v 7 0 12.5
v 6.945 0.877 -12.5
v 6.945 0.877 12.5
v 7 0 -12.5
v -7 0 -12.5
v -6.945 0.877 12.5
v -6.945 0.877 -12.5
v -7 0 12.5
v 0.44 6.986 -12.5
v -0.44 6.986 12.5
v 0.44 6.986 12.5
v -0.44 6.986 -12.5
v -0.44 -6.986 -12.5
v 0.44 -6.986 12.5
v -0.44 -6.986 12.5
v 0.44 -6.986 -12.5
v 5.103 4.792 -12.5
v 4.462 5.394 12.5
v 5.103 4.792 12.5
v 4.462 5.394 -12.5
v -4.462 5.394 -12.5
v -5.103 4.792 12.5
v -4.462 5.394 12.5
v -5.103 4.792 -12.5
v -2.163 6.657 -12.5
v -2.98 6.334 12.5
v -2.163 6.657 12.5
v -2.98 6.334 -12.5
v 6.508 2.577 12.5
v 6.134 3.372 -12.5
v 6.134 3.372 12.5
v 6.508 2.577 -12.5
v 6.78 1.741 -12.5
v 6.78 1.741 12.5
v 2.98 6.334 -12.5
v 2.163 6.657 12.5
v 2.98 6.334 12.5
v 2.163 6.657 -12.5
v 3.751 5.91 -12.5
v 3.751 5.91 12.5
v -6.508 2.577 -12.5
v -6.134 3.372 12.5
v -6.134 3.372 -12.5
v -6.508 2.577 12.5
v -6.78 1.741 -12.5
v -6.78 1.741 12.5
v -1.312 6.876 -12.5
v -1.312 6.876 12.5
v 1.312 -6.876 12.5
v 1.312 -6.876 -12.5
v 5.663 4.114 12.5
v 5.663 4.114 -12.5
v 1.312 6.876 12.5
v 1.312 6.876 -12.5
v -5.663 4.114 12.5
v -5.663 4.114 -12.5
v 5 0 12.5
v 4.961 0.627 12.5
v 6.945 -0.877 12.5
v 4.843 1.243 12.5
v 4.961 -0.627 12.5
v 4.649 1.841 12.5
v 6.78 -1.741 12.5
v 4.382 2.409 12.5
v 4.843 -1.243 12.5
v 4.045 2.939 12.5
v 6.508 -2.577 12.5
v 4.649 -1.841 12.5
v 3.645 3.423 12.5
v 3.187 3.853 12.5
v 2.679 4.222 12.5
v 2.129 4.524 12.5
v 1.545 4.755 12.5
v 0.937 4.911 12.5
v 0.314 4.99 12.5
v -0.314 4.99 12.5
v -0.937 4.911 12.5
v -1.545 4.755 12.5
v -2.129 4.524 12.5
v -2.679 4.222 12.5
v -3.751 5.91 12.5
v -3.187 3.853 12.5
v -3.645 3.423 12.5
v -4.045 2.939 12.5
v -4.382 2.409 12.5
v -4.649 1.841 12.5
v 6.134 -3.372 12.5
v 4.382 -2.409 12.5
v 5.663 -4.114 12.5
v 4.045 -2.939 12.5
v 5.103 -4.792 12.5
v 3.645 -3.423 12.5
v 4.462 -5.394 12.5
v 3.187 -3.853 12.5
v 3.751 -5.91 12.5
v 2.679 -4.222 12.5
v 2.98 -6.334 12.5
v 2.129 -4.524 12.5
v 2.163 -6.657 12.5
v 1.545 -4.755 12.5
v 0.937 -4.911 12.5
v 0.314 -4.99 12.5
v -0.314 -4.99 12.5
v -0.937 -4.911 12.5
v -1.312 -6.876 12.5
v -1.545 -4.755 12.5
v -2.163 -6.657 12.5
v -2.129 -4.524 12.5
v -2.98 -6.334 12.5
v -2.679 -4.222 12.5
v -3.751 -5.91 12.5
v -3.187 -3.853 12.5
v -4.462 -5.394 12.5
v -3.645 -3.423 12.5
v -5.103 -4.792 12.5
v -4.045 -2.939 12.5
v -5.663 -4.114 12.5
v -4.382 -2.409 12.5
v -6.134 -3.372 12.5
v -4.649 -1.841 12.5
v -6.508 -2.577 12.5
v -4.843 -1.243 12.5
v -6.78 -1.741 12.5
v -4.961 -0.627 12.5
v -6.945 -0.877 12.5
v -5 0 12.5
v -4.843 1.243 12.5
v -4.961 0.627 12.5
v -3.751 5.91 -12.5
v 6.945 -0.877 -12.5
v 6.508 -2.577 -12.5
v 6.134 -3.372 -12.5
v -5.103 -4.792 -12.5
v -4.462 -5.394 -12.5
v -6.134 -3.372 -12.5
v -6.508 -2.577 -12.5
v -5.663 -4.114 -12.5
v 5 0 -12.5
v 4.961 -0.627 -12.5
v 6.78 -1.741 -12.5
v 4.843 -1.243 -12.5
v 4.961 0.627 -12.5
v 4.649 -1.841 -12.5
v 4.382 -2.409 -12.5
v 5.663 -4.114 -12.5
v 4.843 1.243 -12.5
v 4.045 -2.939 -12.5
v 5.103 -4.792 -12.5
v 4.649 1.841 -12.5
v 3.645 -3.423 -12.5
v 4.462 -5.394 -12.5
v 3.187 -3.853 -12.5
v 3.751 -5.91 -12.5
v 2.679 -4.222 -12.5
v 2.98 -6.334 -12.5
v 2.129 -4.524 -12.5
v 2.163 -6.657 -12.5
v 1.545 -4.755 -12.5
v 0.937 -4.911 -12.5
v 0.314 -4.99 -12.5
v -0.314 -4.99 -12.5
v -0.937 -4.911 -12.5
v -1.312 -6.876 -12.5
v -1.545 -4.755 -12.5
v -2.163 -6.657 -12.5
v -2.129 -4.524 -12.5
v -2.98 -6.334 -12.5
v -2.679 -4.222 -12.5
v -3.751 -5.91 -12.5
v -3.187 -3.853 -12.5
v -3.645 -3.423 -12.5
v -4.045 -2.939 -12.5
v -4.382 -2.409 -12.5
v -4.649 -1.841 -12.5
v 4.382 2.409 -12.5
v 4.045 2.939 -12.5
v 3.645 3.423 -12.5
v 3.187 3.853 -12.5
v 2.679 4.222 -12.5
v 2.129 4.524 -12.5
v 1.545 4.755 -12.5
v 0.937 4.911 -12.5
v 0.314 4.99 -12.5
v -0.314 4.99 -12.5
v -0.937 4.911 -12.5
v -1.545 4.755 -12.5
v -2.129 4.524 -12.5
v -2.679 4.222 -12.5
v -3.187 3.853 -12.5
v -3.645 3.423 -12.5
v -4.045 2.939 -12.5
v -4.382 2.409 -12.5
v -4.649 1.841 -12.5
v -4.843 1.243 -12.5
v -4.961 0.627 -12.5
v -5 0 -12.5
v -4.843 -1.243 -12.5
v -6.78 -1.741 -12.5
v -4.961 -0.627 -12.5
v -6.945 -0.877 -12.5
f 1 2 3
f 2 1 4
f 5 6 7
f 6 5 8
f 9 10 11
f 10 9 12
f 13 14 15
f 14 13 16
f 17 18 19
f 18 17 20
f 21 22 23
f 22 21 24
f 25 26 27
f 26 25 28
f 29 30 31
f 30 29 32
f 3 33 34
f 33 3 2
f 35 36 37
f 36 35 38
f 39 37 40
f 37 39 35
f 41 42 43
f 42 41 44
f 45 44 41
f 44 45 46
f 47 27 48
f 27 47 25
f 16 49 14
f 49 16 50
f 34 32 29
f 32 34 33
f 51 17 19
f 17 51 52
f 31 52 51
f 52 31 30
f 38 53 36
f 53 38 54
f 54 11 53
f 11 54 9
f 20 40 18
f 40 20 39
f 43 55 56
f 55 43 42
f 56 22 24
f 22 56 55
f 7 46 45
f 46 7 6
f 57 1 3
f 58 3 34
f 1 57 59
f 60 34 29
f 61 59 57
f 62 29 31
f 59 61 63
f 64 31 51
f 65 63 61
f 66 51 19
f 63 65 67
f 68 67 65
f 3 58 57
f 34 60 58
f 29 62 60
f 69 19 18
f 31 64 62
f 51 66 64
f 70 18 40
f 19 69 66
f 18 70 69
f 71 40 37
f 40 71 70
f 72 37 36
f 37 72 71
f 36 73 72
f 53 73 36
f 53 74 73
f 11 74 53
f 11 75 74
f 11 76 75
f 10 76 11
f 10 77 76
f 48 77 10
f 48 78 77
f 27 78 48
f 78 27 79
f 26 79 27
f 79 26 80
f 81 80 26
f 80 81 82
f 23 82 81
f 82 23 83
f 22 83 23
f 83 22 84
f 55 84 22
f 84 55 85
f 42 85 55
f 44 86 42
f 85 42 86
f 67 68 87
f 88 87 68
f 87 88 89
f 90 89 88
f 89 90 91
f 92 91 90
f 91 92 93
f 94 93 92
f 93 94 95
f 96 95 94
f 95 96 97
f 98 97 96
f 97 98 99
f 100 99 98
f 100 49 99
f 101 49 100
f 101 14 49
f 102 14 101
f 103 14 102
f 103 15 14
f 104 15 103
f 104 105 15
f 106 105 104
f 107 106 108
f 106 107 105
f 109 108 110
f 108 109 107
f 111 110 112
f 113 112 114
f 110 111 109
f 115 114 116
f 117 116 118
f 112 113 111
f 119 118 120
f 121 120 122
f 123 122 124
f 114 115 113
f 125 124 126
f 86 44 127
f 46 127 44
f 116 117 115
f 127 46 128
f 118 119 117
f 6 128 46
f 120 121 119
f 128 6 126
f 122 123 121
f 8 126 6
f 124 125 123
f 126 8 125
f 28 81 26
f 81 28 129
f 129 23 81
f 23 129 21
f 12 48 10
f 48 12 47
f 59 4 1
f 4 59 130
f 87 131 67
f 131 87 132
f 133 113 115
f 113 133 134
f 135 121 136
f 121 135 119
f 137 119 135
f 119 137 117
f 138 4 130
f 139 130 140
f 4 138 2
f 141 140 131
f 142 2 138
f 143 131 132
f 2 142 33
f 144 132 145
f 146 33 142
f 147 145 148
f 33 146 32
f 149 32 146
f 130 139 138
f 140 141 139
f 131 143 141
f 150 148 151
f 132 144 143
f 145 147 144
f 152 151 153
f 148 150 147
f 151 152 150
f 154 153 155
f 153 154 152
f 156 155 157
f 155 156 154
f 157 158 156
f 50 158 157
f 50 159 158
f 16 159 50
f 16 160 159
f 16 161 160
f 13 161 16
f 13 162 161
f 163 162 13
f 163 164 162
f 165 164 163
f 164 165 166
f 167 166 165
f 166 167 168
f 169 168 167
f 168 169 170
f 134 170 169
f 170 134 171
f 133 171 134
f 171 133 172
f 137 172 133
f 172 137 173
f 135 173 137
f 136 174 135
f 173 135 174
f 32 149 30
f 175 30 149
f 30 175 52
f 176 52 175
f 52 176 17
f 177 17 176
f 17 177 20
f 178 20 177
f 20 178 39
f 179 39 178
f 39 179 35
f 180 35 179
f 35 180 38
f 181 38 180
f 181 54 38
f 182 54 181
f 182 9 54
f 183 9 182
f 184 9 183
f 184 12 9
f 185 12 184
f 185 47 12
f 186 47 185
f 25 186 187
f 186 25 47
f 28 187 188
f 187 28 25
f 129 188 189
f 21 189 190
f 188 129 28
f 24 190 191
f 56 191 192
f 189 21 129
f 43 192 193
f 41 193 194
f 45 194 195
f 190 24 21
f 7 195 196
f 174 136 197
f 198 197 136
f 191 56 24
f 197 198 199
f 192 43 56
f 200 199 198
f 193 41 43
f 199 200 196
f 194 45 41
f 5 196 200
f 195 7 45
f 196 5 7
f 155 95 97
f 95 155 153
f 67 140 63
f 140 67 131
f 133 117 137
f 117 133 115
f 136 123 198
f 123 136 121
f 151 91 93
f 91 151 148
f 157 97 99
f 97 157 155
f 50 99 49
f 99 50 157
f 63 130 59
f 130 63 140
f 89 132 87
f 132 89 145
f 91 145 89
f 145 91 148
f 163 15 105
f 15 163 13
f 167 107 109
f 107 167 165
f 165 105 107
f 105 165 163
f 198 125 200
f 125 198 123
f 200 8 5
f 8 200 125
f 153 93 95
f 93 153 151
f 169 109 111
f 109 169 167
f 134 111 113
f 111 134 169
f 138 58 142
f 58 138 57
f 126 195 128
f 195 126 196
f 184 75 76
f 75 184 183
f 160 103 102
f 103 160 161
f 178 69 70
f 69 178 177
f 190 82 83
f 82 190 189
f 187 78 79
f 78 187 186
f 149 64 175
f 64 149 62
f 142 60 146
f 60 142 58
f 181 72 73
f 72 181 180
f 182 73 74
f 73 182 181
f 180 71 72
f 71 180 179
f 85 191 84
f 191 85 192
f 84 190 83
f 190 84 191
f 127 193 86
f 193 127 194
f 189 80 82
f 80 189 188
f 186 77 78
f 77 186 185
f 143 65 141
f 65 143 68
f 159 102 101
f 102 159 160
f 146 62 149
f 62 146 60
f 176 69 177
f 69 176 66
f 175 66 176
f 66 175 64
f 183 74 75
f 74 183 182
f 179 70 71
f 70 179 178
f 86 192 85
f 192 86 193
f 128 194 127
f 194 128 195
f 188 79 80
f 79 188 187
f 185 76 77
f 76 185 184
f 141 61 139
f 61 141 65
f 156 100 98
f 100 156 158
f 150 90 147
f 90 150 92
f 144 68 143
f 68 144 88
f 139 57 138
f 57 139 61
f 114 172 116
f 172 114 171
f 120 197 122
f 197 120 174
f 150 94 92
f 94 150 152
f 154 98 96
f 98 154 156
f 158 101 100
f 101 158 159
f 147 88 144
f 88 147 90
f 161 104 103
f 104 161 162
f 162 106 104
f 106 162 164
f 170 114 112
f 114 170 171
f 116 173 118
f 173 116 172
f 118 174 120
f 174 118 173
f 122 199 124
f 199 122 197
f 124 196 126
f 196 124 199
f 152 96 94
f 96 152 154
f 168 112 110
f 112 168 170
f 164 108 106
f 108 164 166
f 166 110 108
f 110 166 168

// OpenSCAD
$fn = 50;


difference() {
	union() {
		translate(v = [0, 0, -12.5000000000]) {
			cylinder(h = 25, r = 7.0000000000);
		}
	}
	union() {
		translate(v = [0, 0, -100.0000000000]) {
			cylinder(h = 200, r = 5);
		}
	}
}
